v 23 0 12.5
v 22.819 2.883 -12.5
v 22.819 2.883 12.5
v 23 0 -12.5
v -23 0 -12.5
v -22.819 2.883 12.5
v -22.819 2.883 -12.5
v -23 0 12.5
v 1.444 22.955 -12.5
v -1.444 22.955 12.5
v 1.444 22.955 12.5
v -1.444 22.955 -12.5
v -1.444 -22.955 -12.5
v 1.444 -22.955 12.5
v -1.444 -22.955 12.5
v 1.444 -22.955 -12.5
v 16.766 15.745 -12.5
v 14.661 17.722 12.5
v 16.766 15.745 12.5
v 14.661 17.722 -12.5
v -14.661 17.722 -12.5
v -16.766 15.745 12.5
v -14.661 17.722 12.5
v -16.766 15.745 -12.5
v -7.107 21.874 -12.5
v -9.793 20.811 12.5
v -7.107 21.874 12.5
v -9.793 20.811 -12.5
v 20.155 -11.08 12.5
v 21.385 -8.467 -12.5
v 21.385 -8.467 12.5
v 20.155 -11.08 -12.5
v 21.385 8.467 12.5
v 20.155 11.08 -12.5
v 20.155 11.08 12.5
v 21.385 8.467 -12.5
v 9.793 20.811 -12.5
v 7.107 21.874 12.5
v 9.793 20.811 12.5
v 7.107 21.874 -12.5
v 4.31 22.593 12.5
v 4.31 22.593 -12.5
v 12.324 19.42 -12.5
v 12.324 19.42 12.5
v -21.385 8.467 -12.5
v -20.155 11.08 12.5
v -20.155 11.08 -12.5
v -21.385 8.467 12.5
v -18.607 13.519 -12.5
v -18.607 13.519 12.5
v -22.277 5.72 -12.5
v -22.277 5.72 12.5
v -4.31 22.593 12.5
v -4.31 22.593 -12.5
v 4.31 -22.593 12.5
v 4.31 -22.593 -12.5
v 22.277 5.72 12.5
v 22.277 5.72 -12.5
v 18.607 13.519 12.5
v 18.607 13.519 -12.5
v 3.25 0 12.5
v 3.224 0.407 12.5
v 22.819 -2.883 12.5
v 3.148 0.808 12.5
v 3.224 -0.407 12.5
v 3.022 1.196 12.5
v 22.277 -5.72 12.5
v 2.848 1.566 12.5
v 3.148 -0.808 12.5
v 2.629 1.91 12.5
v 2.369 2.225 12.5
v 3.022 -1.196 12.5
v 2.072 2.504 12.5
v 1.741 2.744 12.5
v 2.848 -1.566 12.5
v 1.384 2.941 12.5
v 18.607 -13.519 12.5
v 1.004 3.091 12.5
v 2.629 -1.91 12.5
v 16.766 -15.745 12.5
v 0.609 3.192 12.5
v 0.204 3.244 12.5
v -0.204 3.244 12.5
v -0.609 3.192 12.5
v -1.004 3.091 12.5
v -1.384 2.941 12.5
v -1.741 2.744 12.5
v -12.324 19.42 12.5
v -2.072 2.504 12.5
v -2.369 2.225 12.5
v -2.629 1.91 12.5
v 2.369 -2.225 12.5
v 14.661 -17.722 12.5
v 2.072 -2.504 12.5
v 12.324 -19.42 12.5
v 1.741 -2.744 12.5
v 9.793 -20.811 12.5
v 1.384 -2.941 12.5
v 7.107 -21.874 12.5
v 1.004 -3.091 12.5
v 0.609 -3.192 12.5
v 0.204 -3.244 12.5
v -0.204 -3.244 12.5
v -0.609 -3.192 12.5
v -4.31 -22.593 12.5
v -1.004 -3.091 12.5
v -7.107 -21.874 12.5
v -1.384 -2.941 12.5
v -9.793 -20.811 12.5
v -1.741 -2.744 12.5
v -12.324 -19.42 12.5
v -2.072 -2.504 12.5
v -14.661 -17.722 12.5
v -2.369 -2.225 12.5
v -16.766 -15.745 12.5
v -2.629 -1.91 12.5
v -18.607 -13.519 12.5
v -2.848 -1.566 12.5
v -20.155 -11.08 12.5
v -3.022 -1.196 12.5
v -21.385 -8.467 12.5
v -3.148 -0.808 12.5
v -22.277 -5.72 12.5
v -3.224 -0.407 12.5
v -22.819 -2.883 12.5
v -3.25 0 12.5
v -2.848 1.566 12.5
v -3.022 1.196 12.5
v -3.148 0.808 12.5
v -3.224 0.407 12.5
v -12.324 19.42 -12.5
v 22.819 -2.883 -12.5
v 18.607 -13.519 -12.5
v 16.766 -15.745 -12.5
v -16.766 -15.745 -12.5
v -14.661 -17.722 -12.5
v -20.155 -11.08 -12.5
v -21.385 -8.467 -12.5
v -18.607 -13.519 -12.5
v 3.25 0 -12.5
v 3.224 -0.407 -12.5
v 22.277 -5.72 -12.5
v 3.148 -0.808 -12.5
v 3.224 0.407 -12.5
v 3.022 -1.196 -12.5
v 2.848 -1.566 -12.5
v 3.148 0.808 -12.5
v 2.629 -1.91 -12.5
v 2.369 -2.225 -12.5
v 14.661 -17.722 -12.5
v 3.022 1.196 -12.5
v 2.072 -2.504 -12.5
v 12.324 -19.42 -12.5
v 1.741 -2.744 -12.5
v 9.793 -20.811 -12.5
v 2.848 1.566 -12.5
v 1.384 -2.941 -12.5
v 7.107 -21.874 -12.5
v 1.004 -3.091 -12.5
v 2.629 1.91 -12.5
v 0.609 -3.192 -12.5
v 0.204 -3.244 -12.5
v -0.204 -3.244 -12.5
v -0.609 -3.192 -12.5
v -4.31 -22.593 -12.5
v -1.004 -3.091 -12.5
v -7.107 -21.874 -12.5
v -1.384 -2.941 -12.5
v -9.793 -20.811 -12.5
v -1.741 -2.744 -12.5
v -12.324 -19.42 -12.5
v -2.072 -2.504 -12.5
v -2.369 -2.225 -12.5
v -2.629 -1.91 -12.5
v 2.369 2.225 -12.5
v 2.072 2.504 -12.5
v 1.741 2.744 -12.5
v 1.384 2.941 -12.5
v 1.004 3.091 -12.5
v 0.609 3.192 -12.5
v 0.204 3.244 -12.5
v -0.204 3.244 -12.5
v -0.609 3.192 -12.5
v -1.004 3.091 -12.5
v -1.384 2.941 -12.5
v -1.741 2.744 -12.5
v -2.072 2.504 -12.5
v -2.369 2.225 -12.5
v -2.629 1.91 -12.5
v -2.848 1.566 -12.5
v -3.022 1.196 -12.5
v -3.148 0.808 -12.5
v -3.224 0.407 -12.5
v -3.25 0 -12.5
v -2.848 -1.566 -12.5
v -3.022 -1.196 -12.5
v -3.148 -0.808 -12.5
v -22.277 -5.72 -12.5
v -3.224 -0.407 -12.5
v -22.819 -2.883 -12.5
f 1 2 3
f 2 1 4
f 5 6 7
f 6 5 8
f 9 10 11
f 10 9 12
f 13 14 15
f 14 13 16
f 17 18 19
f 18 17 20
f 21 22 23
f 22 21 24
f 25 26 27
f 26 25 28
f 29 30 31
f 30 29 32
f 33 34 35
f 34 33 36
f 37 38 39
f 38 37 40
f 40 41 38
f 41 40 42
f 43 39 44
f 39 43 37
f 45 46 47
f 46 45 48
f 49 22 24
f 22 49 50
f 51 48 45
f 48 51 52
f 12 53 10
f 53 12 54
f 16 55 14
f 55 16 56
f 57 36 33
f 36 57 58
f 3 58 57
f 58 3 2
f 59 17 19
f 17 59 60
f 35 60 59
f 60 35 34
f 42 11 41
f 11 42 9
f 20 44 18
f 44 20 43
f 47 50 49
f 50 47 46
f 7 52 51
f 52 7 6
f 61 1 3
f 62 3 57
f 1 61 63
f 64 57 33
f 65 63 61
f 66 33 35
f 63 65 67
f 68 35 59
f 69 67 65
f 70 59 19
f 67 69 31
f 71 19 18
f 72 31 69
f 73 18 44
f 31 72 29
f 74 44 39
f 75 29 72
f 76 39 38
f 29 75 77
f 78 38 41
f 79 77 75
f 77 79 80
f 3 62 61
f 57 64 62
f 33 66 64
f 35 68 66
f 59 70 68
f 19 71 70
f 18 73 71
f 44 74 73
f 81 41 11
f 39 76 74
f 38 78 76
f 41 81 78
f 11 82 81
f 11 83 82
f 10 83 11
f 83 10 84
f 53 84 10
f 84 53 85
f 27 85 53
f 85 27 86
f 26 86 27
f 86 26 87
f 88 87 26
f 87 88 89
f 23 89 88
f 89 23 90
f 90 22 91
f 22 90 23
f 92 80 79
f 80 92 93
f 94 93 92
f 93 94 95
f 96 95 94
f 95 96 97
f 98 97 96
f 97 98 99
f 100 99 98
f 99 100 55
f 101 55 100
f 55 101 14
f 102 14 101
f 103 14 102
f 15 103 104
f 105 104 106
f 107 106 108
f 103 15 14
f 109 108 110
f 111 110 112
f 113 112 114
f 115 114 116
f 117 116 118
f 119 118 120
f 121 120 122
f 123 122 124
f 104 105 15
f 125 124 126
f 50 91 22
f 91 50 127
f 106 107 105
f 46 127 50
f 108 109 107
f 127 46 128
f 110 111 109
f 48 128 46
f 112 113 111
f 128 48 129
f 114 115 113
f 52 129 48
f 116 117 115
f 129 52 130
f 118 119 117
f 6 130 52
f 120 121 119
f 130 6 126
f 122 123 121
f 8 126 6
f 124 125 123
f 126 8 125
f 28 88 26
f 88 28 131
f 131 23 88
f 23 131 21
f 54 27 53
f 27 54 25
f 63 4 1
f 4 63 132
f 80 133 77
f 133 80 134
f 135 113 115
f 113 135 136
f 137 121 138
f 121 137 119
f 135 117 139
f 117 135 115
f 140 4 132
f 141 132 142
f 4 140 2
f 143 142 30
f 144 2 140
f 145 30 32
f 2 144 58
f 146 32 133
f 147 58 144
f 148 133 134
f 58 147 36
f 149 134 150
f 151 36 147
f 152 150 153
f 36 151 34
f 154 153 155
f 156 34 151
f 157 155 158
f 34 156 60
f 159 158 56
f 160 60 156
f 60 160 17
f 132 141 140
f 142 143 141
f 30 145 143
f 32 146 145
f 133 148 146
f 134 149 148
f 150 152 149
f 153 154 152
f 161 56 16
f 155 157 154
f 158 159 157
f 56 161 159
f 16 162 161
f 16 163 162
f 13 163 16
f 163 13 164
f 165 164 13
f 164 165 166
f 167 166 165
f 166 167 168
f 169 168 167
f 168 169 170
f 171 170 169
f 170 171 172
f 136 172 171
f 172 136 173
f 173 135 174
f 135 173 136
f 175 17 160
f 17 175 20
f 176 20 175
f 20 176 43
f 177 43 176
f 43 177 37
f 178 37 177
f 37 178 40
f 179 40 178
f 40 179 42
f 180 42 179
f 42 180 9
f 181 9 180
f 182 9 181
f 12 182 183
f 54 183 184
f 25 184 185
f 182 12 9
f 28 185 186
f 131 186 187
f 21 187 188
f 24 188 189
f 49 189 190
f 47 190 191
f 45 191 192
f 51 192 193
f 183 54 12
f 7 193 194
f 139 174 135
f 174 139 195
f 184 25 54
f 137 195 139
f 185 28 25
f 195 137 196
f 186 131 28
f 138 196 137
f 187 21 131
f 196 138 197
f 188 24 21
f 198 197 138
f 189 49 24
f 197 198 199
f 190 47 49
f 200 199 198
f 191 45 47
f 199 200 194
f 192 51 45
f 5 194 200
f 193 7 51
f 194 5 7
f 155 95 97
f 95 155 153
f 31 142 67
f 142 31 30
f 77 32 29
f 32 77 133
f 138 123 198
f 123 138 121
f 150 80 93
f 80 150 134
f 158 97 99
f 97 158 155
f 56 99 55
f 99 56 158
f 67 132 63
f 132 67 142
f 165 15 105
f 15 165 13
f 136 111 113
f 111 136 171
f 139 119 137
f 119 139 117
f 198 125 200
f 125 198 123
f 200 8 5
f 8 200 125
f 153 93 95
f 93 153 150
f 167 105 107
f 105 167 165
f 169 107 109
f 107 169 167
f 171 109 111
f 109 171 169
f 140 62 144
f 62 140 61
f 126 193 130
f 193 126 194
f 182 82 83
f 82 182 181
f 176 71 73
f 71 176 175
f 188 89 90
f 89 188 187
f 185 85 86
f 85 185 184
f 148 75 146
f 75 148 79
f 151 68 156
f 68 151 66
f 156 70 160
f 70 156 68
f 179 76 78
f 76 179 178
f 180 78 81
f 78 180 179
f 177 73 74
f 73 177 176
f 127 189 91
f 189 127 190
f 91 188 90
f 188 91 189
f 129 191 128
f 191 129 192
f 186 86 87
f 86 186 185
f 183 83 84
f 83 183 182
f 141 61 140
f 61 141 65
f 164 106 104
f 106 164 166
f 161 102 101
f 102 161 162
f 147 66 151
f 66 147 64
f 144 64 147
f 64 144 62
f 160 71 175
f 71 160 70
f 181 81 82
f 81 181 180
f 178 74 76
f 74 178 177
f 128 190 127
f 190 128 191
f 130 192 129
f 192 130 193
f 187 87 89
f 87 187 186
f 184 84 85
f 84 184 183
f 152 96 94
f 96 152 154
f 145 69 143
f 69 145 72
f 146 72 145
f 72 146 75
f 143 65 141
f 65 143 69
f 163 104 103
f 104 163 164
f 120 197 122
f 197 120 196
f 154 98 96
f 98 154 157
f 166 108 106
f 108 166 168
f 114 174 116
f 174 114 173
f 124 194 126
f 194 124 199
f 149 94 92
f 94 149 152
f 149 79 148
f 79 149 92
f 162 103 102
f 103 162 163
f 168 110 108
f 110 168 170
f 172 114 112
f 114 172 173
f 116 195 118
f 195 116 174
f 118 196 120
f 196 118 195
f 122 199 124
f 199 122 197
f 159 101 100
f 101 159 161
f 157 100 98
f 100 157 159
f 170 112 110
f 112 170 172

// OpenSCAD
$fn = 50;


difference() {
	union() {
		translate(v = [0, 0, -12.5000000000]) {
			cylinder(h = 25, r = 23.0000000000);
		}
	}
	union() {
		translate(v = [0, 0, -100.0000000000]) {
			cylinder(h = 200, r = 3.2500000000);
		}
	}
}
